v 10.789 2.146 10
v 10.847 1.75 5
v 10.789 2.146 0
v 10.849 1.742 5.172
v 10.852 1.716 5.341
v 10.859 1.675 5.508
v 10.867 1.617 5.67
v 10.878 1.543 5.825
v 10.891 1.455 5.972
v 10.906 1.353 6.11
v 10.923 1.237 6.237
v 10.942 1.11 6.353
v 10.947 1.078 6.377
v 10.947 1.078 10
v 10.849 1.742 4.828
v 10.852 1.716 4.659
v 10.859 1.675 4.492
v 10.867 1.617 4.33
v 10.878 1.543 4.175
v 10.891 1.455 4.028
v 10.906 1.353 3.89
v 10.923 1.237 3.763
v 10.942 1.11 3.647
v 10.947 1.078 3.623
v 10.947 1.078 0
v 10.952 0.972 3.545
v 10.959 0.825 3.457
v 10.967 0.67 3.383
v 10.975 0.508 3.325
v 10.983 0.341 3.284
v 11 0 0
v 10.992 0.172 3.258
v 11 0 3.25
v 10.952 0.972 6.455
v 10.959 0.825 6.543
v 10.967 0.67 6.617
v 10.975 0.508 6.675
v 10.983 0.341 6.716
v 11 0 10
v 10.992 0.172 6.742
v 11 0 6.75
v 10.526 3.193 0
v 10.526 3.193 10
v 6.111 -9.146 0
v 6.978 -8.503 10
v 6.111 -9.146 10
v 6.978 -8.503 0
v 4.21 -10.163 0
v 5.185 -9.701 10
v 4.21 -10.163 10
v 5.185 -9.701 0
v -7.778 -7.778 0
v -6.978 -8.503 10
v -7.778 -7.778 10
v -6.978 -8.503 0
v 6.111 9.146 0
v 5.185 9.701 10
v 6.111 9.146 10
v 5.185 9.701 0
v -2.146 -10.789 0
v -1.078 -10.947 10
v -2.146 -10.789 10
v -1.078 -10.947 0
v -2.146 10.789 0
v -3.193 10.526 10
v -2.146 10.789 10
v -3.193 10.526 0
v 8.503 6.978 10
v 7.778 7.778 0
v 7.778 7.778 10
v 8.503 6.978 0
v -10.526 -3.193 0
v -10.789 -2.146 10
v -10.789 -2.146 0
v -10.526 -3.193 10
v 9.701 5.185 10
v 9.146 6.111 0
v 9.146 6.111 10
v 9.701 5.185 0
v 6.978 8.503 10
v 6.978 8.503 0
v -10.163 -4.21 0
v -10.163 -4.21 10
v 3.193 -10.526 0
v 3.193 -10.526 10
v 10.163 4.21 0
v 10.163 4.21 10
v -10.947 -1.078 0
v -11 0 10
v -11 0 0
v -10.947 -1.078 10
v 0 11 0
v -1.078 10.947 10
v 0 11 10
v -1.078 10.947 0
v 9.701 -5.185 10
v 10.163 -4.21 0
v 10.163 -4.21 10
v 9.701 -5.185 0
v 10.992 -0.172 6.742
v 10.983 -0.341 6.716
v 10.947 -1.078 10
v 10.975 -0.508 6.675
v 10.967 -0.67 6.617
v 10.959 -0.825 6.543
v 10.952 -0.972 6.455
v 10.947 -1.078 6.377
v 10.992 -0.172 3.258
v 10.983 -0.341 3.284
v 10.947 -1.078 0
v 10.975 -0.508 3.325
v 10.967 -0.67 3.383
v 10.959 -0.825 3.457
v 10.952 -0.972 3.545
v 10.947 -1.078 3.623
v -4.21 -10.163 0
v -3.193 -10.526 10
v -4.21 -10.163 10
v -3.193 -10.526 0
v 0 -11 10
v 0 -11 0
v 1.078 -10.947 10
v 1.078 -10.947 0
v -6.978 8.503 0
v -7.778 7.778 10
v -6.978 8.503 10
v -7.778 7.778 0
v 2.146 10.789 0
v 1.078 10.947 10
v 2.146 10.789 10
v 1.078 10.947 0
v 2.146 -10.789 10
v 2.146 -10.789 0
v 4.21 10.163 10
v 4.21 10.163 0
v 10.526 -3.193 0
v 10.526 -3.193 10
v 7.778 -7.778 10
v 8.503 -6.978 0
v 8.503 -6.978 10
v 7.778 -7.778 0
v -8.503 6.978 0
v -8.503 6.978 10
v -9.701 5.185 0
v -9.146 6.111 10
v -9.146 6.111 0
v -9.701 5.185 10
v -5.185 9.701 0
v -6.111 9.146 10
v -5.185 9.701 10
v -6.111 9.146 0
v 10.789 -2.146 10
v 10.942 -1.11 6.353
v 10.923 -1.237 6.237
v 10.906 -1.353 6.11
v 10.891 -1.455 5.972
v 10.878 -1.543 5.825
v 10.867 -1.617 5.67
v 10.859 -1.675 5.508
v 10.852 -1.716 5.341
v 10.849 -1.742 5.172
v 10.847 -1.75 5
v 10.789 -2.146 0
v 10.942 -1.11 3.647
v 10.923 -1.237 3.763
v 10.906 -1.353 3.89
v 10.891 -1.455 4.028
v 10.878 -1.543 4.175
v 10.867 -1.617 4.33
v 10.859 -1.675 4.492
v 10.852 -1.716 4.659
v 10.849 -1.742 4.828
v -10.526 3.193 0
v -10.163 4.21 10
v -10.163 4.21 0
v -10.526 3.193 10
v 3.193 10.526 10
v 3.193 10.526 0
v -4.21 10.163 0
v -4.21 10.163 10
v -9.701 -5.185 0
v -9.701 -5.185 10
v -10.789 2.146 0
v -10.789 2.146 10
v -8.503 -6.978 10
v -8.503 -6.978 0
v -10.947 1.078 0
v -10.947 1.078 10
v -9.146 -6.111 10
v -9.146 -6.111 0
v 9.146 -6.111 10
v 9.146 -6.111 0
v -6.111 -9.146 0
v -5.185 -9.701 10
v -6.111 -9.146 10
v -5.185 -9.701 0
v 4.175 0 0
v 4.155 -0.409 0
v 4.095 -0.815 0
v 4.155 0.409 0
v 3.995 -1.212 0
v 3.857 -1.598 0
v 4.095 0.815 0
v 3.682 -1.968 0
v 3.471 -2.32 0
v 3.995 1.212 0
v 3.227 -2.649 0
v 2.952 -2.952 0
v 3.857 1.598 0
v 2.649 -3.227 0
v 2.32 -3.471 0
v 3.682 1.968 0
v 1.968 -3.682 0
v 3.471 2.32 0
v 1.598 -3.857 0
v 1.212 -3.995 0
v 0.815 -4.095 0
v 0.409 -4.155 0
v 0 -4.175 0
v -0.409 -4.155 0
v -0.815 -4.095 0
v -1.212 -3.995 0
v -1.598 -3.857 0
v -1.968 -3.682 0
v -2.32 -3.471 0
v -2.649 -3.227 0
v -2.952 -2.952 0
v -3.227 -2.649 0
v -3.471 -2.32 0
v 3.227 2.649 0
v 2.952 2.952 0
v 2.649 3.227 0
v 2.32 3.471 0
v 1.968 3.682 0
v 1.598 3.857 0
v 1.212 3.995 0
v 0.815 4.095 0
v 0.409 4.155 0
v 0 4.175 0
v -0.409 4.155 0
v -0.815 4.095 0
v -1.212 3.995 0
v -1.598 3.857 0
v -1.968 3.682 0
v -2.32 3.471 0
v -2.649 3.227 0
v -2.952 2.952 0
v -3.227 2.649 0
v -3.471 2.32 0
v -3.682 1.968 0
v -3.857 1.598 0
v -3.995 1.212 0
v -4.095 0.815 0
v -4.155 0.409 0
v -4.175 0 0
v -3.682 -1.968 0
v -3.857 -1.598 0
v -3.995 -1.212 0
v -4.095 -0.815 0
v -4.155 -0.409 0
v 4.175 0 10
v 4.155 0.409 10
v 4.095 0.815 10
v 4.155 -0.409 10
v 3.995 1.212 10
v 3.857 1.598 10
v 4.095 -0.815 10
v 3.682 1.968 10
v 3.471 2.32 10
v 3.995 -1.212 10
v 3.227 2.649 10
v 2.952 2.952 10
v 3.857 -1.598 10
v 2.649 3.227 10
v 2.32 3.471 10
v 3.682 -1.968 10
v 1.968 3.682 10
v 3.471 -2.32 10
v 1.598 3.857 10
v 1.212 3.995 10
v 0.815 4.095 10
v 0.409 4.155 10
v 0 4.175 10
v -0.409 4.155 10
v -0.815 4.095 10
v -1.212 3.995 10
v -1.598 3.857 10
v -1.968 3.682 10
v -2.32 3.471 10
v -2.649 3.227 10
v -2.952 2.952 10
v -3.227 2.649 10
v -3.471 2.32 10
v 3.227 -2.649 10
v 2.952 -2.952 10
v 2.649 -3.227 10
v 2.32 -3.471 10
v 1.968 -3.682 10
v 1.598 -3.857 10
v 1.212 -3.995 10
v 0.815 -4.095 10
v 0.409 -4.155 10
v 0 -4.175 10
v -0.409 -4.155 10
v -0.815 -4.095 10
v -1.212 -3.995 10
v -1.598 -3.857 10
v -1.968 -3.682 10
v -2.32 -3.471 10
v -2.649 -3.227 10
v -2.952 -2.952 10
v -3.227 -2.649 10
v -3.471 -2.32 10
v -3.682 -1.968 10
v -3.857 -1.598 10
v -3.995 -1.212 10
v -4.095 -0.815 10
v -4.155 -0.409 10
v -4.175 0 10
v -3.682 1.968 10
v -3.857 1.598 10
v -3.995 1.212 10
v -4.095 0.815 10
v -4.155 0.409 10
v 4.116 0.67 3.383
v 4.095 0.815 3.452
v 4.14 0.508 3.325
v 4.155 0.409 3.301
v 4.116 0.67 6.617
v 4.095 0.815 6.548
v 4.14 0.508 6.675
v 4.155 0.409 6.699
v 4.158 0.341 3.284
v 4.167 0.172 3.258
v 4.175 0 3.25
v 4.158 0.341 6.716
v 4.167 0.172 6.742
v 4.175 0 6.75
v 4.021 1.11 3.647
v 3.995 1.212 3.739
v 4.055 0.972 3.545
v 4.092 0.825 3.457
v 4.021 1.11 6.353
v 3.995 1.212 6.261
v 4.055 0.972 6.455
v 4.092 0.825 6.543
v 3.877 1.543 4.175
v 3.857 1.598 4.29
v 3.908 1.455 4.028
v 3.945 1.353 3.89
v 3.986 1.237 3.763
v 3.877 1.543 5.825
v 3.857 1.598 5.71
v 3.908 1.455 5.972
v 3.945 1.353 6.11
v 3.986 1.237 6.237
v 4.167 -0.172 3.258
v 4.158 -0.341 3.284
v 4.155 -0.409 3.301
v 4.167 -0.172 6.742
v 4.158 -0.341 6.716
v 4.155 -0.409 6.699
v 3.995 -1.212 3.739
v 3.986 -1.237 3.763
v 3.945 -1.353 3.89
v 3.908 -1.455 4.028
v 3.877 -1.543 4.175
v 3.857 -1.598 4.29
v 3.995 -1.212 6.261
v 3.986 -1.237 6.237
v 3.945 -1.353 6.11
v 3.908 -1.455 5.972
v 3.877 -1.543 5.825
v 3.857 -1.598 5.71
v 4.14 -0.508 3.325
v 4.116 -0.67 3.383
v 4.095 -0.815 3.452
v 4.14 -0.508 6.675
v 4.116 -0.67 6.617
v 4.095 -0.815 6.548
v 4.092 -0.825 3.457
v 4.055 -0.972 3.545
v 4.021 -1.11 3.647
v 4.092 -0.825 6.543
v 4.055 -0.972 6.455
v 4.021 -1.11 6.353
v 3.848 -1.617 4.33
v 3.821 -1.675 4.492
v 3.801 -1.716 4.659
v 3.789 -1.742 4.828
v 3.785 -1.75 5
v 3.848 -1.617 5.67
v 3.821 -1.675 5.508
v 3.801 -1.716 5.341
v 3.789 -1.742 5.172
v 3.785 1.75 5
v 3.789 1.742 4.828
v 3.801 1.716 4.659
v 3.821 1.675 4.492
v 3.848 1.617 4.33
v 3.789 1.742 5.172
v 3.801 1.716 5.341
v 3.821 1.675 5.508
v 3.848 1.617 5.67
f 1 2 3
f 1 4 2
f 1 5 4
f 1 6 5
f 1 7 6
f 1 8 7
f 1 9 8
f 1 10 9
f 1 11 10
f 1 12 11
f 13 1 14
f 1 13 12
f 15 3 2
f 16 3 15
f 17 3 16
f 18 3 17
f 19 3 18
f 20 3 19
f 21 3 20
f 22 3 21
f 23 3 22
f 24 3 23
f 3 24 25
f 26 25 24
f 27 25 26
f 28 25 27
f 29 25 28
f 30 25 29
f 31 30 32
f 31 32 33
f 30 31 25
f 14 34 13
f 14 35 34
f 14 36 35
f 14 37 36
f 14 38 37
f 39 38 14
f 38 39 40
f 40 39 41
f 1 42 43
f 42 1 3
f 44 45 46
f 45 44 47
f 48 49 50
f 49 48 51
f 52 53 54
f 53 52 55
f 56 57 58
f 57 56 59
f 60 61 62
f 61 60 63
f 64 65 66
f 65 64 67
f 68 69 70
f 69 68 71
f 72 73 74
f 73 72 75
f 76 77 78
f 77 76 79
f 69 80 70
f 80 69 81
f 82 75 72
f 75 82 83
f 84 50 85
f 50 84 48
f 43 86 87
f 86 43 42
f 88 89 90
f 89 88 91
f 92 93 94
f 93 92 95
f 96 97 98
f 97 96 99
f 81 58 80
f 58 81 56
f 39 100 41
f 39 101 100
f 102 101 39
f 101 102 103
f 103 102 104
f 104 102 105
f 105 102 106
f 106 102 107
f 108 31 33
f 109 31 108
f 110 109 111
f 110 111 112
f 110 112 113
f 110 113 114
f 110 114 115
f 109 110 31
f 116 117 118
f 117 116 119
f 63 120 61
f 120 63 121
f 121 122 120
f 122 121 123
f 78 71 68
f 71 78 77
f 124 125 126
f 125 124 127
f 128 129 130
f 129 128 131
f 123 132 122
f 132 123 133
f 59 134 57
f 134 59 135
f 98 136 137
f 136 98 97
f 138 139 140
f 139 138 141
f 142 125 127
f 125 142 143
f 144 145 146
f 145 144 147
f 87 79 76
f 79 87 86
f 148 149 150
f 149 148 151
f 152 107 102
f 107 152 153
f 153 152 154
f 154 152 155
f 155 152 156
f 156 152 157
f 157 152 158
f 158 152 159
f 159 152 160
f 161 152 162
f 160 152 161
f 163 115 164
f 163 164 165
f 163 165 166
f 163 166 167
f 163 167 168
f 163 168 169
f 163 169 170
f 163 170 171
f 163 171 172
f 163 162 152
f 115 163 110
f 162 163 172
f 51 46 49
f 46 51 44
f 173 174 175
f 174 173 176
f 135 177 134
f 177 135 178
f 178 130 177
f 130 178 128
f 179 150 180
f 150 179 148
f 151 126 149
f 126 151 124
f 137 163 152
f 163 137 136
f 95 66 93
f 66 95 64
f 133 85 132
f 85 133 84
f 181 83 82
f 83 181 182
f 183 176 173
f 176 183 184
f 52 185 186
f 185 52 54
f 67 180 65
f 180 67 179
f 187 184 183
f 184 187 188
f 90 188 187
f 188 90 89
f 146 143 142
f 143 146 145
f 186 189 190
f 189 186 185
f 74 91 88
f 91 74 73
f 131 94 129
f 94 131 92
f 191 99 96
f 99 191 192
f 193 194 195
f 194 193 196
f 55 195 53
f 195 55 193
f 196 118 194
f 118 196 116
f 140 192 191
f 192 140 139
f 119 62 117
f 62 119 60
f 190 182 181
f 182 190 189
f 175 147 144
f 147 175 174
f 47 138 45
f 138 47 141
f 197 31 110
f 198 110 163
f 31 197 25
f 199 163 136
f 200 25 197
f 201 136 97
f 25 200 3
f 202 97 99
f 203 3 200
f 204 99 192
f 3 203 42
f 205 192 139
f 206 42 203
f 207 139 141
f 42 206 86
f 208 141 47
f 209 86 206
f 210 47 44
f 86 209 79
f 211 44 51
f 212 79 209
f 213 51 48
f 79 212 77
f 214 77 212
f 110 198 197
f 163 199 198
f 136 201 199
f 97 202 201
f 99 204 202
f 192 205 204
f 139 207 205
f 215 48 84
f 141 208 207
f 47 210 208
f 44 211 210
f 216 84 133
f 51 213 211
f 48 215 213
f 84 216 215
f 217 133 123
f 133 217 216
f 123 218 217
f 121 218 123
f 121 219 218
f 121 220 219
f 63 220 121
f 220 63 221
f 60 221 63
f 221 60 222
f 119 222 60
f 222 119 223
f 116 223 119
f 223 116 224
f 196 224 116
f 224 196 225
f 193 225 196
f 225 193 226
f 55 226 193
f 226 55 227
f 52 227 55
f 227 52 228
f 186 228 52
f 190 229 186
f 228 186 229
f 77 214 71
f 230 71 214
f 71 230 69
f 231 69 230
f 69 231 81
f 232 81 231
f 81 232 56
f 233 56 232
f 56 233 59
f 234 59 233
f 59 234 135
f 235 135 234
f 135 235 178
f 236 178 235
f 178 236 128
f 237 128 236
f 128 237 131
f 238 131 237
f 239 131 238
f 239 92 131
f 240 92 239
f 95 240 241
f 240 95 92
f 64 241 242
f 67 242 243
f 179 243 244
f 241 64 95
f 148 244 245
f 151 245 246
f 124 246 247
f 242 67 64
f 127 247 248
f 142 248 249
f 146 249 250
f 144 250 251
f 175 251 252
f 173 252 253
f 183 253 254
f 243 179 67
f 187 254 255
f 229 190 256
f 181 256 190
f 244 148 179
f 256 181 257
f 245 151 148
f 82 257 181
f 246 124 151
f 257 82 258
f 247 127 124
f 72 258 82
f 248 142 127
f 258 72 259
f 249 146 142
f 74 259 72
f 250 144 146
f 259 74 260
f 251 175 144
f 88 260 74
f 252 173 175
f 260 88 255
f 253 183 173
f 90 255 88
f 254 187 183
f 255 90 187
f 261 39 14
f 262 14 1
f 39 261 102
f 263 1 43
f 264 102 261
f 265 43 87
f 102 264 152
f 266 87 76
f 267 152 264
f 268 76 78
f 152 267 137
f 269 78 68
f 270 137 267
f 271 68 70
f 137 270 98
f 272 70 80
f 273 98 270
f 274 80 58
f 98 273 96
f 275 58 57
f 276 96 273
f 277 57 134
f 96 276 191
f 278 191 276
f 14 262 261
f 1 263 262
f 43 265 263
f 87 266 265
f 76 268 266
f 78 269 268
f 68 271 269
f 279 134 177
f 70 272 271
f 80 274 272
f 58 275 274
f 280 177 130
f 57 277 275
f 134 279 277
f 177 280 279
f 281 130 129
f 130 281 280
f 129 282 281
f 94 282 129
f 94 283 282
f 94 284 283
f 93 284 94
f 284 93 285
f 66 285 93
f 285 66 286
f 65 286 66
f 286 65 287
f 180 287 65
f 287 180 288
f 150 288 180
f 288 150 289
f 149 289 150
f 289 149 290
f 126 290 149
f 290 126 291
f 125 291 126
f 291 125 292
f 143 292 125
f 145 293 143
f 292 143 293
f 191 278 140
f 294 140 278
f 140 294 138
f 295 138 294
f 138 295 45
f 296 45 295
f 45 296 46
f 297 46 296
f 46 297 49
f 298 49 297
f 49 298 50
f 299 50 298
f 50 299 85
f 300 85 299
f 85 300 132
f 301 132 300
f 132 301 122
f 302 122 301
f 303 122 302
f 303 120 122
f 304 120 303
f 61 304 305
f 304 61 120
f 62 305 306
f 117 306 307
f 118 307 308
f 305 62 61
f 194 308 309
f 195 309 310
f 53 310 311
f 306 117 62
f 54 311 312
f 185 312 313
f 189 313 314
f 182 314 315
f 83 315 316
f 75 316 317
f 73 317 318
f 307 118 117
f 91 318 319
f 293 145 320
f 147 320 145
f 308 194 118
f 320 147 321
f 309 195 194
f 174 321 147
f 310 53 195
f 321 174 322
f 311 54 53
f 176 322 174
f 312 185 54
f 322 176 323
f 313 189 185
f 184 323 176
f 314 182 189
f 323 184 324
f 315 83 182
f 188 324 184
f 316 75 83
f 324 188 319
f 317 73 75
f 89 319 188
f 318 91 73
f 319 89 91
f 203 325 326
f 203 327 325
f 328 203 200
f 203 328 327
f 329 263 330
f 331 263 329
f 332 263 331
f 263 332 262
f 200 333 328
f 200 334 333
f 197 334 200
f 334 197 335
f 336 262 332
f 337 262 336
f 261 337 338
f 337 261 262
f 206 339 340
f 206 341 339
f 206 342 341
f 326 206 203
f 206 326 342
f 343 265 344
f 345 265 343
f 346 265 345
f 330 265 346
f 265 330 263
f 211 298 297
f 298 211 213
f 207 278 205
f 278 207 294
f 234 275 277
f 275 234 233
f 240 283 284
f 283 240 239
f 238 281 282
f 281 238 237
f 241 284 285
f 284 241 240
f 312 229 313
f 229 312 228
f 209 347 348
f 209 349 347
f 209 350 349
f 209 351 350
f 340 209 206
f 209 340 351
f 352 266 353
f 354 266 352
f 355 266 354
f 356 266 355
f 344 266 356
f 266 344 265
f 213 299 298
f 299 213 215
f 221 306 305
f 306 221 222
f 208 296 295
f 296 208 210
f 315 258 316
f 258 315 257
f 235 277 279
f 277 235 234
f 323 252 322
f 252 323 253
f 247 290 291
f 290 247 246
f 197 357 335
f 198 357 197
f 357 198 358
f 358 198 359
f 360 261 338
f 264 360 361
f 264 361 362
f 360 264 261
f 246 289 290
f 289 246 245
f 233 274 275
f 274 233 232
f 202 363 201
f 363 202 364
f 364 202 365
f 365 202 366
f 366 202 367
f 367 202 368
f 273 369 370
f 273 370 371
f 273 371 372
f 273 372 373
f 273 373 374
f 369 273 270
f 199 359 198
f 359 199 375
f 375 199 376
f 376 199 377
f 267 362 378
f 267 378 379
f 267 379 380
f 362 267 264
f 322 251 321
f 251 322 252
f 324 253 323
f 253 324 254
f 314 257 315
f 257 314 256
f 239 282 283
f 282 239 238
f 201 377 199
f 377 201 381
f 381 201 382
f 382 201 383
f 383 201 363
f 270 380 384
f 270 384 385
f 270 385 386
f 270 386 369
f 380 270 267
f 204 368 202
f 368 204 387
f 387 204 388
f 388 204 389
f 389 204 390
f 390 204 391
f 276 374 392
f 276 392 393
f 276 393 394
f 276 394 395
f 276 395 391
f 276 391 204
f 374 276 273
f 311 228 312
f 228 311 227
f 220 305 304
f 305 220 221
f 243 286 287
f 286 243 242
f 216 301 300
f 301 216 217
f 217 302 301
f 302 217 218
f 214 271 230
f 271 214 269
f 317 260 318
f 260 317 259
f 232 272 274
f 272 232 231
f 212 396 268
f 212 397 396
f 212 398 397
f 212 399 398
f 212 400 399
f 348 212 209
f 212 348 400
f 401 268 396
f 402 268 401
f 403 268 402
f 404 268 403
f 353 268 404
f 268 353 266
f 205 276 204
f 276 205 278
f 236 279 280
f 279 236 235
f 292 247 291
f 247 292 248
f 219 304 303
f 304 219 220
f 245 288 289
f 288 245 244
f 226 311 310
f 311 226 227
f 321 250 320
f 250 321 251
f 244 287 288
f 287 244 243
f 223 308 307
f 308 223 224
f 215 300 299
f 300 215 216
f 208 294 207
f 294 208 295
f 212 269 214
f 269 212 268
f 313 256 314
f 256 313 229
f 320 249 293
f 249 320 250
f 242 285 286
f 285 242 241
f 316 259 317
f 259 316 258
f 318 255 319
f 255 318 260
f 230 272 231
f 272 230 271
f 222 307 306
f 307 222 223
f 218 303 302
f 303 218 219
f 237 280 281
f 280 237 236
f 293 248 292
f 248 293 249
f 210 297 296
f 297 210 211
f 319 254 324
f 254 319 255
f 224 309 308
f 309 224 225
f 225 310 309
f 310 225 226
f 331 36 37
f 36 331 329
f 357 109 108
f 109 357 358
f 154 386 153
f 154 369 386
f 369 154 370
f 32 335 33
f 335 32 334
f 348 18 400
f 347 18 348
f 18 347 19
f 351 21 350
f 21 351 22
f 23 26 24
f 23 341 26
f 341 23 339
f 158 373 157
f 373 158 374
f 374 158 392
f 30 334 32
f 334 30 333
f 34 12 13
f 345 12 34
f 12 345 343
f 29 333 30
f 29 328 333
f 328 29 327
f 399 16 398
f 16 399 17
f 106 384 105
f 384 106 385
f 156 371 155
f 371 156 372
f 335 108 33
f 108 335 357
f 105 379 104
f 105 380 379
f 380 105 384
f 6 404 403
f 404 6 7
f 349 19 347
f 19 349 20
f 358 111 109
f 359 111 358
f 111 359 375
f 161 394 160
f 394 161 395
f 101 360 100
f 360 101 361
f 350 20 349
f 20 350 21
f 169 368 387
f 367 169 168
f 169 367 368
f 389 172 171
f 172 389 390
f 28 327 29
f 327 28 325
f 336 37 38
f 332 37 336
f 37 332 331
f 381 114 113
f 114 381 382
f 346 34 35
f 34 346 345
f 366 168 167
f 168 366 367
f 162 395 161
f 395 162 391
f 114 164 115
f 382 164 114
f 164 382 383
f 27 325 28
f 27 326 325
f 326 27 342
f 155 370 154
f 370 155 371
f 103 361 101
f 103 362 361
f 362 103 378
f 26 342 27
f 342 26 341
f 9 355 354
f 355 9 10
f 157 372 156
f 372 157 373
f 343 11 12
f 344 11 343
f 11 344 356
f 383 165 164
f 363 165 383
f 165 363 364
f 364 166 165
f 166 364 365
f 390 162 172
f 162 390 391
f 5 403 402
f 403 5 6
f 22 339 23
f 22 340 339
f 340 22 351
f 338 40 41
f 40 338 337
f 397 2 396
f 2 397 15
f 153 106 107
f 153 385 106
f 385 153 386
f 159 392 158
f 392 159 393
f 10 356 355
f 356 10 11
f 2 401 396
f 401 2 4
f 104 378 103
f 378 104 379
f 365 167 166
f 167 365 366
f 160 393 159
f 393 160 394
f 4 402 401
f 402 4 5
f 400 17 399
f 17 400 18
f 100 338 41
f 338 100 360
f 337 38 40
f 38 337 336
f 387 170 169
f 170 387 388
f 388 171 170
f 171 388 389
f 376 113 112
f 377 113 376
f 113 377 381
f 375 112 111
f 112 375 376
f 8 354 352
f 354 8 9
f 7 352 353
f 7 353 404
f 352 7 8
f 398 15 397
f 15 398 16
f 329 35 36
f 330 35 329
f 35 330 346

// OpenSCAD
// file: parameters.scad
// =============================================================================
// Gen-AJ Vernier flux-claw ultra — WOUND-AWARE (HARD GATE)
// Dual-rotor vernier: Rotor B +22.5° vs 12-slot stator; Ø5 flux claws
// =============================================================================

wire_awg            = 26;
wire_od             = 0.45;
turns               = 175;
fill                = 0.70;
layers_per_face     = 2;
wind_build_axial    = layers_per_face * wire_od * fill;   // 0.63 mm
wind_build_radial   = 3 * wire_od * fill;                 // 0.945 mm

coil_id_r           = 17.0;
coil_od_r           = 64.0;
span_deg            = 25.0;
former_web          = 1.50;
flange_t            = 0.60;
wall                = 1.2;
slot_w              = 2.4;
mount_hole          = 3.5;
tab_len             = 7.0;

former_bare_h       = former_web + 2 * flange_t;            // 2.70 mm
coil_envelope_h     = former_bare_h + 2 * wind_build_axial; // 3.96 mm

run_clear           = 0.50;
gap_spacer_h        = run_clear + wind_build_axial;         // 1.13 mm
m2m                 = coil_envelope_h + 2 * run_clear;      // 4.96 mm

coil_stations       = 12;
bay_r_in            = coil_id_r - 2.0 - wind_build_radial;
bay_r_out           = coil_od_r + 2.0 + wind_build_radial;
bay_span            = span_deg + 4.0;
bay_offset          = 2.0;
stator_thick        = former_bare_h;
stator_od           = 160.0;
shaft_clear_stator  = 34.0;
coil_mount_r        = 26.0;

large_pocket_d      = 20.3;
small_pocket_d      = 5.3;
pocket_h            = 5.2;
large_n             = 8;
R_large             = 42.0;
R_small_inner       = 27.0;
R_small_mid         = 42.0;
R_small_outer       = 57.0;
carrier_od          = 156.0;
carrier_thick       = 7.5;
hub_h               = 10.0;
hub_od              = 30.0;
rotor_b_offset_deg  = 22.5;     // vernier offset vs 12-slot stator

shaft_bore          = 8.35;
bearing_d           = 21.85;
bearing_h           = 7.2;
m3_clear            = 3.5;
bolt_r_inner        = 36.0;
bolt_n_inner        = 6;
flange_bolt_r       = 72.0;
flange_bolt_n       = 6;
brace_r             = 68.0;
brace_d             = 4.3;
brace_n             = 4;

spacer_pad_od       = 14.0;
spacer_pad_id       = m3_clear;
endbell_od          = 160.0;
endbell_thick       = 8.0;
endbell_shaft_clear = 10.0;

$fn = 64;
// main file
// Gen-AJ shaft collar — print ×2–4
include <parameters.scad>;
$fn = 64;
od = 22; id = shaft_bore; h = 10; set_d = 3.5;
difference() {
    cylinder(d=od, h=h);
    translate([0, 0, -0.1]) cylinder(d=id, h=h + 0.2);
    translate([0, 0, h/2]) rotate([0, 90, 0]) cylinder(d=set_d, h=od);
}
